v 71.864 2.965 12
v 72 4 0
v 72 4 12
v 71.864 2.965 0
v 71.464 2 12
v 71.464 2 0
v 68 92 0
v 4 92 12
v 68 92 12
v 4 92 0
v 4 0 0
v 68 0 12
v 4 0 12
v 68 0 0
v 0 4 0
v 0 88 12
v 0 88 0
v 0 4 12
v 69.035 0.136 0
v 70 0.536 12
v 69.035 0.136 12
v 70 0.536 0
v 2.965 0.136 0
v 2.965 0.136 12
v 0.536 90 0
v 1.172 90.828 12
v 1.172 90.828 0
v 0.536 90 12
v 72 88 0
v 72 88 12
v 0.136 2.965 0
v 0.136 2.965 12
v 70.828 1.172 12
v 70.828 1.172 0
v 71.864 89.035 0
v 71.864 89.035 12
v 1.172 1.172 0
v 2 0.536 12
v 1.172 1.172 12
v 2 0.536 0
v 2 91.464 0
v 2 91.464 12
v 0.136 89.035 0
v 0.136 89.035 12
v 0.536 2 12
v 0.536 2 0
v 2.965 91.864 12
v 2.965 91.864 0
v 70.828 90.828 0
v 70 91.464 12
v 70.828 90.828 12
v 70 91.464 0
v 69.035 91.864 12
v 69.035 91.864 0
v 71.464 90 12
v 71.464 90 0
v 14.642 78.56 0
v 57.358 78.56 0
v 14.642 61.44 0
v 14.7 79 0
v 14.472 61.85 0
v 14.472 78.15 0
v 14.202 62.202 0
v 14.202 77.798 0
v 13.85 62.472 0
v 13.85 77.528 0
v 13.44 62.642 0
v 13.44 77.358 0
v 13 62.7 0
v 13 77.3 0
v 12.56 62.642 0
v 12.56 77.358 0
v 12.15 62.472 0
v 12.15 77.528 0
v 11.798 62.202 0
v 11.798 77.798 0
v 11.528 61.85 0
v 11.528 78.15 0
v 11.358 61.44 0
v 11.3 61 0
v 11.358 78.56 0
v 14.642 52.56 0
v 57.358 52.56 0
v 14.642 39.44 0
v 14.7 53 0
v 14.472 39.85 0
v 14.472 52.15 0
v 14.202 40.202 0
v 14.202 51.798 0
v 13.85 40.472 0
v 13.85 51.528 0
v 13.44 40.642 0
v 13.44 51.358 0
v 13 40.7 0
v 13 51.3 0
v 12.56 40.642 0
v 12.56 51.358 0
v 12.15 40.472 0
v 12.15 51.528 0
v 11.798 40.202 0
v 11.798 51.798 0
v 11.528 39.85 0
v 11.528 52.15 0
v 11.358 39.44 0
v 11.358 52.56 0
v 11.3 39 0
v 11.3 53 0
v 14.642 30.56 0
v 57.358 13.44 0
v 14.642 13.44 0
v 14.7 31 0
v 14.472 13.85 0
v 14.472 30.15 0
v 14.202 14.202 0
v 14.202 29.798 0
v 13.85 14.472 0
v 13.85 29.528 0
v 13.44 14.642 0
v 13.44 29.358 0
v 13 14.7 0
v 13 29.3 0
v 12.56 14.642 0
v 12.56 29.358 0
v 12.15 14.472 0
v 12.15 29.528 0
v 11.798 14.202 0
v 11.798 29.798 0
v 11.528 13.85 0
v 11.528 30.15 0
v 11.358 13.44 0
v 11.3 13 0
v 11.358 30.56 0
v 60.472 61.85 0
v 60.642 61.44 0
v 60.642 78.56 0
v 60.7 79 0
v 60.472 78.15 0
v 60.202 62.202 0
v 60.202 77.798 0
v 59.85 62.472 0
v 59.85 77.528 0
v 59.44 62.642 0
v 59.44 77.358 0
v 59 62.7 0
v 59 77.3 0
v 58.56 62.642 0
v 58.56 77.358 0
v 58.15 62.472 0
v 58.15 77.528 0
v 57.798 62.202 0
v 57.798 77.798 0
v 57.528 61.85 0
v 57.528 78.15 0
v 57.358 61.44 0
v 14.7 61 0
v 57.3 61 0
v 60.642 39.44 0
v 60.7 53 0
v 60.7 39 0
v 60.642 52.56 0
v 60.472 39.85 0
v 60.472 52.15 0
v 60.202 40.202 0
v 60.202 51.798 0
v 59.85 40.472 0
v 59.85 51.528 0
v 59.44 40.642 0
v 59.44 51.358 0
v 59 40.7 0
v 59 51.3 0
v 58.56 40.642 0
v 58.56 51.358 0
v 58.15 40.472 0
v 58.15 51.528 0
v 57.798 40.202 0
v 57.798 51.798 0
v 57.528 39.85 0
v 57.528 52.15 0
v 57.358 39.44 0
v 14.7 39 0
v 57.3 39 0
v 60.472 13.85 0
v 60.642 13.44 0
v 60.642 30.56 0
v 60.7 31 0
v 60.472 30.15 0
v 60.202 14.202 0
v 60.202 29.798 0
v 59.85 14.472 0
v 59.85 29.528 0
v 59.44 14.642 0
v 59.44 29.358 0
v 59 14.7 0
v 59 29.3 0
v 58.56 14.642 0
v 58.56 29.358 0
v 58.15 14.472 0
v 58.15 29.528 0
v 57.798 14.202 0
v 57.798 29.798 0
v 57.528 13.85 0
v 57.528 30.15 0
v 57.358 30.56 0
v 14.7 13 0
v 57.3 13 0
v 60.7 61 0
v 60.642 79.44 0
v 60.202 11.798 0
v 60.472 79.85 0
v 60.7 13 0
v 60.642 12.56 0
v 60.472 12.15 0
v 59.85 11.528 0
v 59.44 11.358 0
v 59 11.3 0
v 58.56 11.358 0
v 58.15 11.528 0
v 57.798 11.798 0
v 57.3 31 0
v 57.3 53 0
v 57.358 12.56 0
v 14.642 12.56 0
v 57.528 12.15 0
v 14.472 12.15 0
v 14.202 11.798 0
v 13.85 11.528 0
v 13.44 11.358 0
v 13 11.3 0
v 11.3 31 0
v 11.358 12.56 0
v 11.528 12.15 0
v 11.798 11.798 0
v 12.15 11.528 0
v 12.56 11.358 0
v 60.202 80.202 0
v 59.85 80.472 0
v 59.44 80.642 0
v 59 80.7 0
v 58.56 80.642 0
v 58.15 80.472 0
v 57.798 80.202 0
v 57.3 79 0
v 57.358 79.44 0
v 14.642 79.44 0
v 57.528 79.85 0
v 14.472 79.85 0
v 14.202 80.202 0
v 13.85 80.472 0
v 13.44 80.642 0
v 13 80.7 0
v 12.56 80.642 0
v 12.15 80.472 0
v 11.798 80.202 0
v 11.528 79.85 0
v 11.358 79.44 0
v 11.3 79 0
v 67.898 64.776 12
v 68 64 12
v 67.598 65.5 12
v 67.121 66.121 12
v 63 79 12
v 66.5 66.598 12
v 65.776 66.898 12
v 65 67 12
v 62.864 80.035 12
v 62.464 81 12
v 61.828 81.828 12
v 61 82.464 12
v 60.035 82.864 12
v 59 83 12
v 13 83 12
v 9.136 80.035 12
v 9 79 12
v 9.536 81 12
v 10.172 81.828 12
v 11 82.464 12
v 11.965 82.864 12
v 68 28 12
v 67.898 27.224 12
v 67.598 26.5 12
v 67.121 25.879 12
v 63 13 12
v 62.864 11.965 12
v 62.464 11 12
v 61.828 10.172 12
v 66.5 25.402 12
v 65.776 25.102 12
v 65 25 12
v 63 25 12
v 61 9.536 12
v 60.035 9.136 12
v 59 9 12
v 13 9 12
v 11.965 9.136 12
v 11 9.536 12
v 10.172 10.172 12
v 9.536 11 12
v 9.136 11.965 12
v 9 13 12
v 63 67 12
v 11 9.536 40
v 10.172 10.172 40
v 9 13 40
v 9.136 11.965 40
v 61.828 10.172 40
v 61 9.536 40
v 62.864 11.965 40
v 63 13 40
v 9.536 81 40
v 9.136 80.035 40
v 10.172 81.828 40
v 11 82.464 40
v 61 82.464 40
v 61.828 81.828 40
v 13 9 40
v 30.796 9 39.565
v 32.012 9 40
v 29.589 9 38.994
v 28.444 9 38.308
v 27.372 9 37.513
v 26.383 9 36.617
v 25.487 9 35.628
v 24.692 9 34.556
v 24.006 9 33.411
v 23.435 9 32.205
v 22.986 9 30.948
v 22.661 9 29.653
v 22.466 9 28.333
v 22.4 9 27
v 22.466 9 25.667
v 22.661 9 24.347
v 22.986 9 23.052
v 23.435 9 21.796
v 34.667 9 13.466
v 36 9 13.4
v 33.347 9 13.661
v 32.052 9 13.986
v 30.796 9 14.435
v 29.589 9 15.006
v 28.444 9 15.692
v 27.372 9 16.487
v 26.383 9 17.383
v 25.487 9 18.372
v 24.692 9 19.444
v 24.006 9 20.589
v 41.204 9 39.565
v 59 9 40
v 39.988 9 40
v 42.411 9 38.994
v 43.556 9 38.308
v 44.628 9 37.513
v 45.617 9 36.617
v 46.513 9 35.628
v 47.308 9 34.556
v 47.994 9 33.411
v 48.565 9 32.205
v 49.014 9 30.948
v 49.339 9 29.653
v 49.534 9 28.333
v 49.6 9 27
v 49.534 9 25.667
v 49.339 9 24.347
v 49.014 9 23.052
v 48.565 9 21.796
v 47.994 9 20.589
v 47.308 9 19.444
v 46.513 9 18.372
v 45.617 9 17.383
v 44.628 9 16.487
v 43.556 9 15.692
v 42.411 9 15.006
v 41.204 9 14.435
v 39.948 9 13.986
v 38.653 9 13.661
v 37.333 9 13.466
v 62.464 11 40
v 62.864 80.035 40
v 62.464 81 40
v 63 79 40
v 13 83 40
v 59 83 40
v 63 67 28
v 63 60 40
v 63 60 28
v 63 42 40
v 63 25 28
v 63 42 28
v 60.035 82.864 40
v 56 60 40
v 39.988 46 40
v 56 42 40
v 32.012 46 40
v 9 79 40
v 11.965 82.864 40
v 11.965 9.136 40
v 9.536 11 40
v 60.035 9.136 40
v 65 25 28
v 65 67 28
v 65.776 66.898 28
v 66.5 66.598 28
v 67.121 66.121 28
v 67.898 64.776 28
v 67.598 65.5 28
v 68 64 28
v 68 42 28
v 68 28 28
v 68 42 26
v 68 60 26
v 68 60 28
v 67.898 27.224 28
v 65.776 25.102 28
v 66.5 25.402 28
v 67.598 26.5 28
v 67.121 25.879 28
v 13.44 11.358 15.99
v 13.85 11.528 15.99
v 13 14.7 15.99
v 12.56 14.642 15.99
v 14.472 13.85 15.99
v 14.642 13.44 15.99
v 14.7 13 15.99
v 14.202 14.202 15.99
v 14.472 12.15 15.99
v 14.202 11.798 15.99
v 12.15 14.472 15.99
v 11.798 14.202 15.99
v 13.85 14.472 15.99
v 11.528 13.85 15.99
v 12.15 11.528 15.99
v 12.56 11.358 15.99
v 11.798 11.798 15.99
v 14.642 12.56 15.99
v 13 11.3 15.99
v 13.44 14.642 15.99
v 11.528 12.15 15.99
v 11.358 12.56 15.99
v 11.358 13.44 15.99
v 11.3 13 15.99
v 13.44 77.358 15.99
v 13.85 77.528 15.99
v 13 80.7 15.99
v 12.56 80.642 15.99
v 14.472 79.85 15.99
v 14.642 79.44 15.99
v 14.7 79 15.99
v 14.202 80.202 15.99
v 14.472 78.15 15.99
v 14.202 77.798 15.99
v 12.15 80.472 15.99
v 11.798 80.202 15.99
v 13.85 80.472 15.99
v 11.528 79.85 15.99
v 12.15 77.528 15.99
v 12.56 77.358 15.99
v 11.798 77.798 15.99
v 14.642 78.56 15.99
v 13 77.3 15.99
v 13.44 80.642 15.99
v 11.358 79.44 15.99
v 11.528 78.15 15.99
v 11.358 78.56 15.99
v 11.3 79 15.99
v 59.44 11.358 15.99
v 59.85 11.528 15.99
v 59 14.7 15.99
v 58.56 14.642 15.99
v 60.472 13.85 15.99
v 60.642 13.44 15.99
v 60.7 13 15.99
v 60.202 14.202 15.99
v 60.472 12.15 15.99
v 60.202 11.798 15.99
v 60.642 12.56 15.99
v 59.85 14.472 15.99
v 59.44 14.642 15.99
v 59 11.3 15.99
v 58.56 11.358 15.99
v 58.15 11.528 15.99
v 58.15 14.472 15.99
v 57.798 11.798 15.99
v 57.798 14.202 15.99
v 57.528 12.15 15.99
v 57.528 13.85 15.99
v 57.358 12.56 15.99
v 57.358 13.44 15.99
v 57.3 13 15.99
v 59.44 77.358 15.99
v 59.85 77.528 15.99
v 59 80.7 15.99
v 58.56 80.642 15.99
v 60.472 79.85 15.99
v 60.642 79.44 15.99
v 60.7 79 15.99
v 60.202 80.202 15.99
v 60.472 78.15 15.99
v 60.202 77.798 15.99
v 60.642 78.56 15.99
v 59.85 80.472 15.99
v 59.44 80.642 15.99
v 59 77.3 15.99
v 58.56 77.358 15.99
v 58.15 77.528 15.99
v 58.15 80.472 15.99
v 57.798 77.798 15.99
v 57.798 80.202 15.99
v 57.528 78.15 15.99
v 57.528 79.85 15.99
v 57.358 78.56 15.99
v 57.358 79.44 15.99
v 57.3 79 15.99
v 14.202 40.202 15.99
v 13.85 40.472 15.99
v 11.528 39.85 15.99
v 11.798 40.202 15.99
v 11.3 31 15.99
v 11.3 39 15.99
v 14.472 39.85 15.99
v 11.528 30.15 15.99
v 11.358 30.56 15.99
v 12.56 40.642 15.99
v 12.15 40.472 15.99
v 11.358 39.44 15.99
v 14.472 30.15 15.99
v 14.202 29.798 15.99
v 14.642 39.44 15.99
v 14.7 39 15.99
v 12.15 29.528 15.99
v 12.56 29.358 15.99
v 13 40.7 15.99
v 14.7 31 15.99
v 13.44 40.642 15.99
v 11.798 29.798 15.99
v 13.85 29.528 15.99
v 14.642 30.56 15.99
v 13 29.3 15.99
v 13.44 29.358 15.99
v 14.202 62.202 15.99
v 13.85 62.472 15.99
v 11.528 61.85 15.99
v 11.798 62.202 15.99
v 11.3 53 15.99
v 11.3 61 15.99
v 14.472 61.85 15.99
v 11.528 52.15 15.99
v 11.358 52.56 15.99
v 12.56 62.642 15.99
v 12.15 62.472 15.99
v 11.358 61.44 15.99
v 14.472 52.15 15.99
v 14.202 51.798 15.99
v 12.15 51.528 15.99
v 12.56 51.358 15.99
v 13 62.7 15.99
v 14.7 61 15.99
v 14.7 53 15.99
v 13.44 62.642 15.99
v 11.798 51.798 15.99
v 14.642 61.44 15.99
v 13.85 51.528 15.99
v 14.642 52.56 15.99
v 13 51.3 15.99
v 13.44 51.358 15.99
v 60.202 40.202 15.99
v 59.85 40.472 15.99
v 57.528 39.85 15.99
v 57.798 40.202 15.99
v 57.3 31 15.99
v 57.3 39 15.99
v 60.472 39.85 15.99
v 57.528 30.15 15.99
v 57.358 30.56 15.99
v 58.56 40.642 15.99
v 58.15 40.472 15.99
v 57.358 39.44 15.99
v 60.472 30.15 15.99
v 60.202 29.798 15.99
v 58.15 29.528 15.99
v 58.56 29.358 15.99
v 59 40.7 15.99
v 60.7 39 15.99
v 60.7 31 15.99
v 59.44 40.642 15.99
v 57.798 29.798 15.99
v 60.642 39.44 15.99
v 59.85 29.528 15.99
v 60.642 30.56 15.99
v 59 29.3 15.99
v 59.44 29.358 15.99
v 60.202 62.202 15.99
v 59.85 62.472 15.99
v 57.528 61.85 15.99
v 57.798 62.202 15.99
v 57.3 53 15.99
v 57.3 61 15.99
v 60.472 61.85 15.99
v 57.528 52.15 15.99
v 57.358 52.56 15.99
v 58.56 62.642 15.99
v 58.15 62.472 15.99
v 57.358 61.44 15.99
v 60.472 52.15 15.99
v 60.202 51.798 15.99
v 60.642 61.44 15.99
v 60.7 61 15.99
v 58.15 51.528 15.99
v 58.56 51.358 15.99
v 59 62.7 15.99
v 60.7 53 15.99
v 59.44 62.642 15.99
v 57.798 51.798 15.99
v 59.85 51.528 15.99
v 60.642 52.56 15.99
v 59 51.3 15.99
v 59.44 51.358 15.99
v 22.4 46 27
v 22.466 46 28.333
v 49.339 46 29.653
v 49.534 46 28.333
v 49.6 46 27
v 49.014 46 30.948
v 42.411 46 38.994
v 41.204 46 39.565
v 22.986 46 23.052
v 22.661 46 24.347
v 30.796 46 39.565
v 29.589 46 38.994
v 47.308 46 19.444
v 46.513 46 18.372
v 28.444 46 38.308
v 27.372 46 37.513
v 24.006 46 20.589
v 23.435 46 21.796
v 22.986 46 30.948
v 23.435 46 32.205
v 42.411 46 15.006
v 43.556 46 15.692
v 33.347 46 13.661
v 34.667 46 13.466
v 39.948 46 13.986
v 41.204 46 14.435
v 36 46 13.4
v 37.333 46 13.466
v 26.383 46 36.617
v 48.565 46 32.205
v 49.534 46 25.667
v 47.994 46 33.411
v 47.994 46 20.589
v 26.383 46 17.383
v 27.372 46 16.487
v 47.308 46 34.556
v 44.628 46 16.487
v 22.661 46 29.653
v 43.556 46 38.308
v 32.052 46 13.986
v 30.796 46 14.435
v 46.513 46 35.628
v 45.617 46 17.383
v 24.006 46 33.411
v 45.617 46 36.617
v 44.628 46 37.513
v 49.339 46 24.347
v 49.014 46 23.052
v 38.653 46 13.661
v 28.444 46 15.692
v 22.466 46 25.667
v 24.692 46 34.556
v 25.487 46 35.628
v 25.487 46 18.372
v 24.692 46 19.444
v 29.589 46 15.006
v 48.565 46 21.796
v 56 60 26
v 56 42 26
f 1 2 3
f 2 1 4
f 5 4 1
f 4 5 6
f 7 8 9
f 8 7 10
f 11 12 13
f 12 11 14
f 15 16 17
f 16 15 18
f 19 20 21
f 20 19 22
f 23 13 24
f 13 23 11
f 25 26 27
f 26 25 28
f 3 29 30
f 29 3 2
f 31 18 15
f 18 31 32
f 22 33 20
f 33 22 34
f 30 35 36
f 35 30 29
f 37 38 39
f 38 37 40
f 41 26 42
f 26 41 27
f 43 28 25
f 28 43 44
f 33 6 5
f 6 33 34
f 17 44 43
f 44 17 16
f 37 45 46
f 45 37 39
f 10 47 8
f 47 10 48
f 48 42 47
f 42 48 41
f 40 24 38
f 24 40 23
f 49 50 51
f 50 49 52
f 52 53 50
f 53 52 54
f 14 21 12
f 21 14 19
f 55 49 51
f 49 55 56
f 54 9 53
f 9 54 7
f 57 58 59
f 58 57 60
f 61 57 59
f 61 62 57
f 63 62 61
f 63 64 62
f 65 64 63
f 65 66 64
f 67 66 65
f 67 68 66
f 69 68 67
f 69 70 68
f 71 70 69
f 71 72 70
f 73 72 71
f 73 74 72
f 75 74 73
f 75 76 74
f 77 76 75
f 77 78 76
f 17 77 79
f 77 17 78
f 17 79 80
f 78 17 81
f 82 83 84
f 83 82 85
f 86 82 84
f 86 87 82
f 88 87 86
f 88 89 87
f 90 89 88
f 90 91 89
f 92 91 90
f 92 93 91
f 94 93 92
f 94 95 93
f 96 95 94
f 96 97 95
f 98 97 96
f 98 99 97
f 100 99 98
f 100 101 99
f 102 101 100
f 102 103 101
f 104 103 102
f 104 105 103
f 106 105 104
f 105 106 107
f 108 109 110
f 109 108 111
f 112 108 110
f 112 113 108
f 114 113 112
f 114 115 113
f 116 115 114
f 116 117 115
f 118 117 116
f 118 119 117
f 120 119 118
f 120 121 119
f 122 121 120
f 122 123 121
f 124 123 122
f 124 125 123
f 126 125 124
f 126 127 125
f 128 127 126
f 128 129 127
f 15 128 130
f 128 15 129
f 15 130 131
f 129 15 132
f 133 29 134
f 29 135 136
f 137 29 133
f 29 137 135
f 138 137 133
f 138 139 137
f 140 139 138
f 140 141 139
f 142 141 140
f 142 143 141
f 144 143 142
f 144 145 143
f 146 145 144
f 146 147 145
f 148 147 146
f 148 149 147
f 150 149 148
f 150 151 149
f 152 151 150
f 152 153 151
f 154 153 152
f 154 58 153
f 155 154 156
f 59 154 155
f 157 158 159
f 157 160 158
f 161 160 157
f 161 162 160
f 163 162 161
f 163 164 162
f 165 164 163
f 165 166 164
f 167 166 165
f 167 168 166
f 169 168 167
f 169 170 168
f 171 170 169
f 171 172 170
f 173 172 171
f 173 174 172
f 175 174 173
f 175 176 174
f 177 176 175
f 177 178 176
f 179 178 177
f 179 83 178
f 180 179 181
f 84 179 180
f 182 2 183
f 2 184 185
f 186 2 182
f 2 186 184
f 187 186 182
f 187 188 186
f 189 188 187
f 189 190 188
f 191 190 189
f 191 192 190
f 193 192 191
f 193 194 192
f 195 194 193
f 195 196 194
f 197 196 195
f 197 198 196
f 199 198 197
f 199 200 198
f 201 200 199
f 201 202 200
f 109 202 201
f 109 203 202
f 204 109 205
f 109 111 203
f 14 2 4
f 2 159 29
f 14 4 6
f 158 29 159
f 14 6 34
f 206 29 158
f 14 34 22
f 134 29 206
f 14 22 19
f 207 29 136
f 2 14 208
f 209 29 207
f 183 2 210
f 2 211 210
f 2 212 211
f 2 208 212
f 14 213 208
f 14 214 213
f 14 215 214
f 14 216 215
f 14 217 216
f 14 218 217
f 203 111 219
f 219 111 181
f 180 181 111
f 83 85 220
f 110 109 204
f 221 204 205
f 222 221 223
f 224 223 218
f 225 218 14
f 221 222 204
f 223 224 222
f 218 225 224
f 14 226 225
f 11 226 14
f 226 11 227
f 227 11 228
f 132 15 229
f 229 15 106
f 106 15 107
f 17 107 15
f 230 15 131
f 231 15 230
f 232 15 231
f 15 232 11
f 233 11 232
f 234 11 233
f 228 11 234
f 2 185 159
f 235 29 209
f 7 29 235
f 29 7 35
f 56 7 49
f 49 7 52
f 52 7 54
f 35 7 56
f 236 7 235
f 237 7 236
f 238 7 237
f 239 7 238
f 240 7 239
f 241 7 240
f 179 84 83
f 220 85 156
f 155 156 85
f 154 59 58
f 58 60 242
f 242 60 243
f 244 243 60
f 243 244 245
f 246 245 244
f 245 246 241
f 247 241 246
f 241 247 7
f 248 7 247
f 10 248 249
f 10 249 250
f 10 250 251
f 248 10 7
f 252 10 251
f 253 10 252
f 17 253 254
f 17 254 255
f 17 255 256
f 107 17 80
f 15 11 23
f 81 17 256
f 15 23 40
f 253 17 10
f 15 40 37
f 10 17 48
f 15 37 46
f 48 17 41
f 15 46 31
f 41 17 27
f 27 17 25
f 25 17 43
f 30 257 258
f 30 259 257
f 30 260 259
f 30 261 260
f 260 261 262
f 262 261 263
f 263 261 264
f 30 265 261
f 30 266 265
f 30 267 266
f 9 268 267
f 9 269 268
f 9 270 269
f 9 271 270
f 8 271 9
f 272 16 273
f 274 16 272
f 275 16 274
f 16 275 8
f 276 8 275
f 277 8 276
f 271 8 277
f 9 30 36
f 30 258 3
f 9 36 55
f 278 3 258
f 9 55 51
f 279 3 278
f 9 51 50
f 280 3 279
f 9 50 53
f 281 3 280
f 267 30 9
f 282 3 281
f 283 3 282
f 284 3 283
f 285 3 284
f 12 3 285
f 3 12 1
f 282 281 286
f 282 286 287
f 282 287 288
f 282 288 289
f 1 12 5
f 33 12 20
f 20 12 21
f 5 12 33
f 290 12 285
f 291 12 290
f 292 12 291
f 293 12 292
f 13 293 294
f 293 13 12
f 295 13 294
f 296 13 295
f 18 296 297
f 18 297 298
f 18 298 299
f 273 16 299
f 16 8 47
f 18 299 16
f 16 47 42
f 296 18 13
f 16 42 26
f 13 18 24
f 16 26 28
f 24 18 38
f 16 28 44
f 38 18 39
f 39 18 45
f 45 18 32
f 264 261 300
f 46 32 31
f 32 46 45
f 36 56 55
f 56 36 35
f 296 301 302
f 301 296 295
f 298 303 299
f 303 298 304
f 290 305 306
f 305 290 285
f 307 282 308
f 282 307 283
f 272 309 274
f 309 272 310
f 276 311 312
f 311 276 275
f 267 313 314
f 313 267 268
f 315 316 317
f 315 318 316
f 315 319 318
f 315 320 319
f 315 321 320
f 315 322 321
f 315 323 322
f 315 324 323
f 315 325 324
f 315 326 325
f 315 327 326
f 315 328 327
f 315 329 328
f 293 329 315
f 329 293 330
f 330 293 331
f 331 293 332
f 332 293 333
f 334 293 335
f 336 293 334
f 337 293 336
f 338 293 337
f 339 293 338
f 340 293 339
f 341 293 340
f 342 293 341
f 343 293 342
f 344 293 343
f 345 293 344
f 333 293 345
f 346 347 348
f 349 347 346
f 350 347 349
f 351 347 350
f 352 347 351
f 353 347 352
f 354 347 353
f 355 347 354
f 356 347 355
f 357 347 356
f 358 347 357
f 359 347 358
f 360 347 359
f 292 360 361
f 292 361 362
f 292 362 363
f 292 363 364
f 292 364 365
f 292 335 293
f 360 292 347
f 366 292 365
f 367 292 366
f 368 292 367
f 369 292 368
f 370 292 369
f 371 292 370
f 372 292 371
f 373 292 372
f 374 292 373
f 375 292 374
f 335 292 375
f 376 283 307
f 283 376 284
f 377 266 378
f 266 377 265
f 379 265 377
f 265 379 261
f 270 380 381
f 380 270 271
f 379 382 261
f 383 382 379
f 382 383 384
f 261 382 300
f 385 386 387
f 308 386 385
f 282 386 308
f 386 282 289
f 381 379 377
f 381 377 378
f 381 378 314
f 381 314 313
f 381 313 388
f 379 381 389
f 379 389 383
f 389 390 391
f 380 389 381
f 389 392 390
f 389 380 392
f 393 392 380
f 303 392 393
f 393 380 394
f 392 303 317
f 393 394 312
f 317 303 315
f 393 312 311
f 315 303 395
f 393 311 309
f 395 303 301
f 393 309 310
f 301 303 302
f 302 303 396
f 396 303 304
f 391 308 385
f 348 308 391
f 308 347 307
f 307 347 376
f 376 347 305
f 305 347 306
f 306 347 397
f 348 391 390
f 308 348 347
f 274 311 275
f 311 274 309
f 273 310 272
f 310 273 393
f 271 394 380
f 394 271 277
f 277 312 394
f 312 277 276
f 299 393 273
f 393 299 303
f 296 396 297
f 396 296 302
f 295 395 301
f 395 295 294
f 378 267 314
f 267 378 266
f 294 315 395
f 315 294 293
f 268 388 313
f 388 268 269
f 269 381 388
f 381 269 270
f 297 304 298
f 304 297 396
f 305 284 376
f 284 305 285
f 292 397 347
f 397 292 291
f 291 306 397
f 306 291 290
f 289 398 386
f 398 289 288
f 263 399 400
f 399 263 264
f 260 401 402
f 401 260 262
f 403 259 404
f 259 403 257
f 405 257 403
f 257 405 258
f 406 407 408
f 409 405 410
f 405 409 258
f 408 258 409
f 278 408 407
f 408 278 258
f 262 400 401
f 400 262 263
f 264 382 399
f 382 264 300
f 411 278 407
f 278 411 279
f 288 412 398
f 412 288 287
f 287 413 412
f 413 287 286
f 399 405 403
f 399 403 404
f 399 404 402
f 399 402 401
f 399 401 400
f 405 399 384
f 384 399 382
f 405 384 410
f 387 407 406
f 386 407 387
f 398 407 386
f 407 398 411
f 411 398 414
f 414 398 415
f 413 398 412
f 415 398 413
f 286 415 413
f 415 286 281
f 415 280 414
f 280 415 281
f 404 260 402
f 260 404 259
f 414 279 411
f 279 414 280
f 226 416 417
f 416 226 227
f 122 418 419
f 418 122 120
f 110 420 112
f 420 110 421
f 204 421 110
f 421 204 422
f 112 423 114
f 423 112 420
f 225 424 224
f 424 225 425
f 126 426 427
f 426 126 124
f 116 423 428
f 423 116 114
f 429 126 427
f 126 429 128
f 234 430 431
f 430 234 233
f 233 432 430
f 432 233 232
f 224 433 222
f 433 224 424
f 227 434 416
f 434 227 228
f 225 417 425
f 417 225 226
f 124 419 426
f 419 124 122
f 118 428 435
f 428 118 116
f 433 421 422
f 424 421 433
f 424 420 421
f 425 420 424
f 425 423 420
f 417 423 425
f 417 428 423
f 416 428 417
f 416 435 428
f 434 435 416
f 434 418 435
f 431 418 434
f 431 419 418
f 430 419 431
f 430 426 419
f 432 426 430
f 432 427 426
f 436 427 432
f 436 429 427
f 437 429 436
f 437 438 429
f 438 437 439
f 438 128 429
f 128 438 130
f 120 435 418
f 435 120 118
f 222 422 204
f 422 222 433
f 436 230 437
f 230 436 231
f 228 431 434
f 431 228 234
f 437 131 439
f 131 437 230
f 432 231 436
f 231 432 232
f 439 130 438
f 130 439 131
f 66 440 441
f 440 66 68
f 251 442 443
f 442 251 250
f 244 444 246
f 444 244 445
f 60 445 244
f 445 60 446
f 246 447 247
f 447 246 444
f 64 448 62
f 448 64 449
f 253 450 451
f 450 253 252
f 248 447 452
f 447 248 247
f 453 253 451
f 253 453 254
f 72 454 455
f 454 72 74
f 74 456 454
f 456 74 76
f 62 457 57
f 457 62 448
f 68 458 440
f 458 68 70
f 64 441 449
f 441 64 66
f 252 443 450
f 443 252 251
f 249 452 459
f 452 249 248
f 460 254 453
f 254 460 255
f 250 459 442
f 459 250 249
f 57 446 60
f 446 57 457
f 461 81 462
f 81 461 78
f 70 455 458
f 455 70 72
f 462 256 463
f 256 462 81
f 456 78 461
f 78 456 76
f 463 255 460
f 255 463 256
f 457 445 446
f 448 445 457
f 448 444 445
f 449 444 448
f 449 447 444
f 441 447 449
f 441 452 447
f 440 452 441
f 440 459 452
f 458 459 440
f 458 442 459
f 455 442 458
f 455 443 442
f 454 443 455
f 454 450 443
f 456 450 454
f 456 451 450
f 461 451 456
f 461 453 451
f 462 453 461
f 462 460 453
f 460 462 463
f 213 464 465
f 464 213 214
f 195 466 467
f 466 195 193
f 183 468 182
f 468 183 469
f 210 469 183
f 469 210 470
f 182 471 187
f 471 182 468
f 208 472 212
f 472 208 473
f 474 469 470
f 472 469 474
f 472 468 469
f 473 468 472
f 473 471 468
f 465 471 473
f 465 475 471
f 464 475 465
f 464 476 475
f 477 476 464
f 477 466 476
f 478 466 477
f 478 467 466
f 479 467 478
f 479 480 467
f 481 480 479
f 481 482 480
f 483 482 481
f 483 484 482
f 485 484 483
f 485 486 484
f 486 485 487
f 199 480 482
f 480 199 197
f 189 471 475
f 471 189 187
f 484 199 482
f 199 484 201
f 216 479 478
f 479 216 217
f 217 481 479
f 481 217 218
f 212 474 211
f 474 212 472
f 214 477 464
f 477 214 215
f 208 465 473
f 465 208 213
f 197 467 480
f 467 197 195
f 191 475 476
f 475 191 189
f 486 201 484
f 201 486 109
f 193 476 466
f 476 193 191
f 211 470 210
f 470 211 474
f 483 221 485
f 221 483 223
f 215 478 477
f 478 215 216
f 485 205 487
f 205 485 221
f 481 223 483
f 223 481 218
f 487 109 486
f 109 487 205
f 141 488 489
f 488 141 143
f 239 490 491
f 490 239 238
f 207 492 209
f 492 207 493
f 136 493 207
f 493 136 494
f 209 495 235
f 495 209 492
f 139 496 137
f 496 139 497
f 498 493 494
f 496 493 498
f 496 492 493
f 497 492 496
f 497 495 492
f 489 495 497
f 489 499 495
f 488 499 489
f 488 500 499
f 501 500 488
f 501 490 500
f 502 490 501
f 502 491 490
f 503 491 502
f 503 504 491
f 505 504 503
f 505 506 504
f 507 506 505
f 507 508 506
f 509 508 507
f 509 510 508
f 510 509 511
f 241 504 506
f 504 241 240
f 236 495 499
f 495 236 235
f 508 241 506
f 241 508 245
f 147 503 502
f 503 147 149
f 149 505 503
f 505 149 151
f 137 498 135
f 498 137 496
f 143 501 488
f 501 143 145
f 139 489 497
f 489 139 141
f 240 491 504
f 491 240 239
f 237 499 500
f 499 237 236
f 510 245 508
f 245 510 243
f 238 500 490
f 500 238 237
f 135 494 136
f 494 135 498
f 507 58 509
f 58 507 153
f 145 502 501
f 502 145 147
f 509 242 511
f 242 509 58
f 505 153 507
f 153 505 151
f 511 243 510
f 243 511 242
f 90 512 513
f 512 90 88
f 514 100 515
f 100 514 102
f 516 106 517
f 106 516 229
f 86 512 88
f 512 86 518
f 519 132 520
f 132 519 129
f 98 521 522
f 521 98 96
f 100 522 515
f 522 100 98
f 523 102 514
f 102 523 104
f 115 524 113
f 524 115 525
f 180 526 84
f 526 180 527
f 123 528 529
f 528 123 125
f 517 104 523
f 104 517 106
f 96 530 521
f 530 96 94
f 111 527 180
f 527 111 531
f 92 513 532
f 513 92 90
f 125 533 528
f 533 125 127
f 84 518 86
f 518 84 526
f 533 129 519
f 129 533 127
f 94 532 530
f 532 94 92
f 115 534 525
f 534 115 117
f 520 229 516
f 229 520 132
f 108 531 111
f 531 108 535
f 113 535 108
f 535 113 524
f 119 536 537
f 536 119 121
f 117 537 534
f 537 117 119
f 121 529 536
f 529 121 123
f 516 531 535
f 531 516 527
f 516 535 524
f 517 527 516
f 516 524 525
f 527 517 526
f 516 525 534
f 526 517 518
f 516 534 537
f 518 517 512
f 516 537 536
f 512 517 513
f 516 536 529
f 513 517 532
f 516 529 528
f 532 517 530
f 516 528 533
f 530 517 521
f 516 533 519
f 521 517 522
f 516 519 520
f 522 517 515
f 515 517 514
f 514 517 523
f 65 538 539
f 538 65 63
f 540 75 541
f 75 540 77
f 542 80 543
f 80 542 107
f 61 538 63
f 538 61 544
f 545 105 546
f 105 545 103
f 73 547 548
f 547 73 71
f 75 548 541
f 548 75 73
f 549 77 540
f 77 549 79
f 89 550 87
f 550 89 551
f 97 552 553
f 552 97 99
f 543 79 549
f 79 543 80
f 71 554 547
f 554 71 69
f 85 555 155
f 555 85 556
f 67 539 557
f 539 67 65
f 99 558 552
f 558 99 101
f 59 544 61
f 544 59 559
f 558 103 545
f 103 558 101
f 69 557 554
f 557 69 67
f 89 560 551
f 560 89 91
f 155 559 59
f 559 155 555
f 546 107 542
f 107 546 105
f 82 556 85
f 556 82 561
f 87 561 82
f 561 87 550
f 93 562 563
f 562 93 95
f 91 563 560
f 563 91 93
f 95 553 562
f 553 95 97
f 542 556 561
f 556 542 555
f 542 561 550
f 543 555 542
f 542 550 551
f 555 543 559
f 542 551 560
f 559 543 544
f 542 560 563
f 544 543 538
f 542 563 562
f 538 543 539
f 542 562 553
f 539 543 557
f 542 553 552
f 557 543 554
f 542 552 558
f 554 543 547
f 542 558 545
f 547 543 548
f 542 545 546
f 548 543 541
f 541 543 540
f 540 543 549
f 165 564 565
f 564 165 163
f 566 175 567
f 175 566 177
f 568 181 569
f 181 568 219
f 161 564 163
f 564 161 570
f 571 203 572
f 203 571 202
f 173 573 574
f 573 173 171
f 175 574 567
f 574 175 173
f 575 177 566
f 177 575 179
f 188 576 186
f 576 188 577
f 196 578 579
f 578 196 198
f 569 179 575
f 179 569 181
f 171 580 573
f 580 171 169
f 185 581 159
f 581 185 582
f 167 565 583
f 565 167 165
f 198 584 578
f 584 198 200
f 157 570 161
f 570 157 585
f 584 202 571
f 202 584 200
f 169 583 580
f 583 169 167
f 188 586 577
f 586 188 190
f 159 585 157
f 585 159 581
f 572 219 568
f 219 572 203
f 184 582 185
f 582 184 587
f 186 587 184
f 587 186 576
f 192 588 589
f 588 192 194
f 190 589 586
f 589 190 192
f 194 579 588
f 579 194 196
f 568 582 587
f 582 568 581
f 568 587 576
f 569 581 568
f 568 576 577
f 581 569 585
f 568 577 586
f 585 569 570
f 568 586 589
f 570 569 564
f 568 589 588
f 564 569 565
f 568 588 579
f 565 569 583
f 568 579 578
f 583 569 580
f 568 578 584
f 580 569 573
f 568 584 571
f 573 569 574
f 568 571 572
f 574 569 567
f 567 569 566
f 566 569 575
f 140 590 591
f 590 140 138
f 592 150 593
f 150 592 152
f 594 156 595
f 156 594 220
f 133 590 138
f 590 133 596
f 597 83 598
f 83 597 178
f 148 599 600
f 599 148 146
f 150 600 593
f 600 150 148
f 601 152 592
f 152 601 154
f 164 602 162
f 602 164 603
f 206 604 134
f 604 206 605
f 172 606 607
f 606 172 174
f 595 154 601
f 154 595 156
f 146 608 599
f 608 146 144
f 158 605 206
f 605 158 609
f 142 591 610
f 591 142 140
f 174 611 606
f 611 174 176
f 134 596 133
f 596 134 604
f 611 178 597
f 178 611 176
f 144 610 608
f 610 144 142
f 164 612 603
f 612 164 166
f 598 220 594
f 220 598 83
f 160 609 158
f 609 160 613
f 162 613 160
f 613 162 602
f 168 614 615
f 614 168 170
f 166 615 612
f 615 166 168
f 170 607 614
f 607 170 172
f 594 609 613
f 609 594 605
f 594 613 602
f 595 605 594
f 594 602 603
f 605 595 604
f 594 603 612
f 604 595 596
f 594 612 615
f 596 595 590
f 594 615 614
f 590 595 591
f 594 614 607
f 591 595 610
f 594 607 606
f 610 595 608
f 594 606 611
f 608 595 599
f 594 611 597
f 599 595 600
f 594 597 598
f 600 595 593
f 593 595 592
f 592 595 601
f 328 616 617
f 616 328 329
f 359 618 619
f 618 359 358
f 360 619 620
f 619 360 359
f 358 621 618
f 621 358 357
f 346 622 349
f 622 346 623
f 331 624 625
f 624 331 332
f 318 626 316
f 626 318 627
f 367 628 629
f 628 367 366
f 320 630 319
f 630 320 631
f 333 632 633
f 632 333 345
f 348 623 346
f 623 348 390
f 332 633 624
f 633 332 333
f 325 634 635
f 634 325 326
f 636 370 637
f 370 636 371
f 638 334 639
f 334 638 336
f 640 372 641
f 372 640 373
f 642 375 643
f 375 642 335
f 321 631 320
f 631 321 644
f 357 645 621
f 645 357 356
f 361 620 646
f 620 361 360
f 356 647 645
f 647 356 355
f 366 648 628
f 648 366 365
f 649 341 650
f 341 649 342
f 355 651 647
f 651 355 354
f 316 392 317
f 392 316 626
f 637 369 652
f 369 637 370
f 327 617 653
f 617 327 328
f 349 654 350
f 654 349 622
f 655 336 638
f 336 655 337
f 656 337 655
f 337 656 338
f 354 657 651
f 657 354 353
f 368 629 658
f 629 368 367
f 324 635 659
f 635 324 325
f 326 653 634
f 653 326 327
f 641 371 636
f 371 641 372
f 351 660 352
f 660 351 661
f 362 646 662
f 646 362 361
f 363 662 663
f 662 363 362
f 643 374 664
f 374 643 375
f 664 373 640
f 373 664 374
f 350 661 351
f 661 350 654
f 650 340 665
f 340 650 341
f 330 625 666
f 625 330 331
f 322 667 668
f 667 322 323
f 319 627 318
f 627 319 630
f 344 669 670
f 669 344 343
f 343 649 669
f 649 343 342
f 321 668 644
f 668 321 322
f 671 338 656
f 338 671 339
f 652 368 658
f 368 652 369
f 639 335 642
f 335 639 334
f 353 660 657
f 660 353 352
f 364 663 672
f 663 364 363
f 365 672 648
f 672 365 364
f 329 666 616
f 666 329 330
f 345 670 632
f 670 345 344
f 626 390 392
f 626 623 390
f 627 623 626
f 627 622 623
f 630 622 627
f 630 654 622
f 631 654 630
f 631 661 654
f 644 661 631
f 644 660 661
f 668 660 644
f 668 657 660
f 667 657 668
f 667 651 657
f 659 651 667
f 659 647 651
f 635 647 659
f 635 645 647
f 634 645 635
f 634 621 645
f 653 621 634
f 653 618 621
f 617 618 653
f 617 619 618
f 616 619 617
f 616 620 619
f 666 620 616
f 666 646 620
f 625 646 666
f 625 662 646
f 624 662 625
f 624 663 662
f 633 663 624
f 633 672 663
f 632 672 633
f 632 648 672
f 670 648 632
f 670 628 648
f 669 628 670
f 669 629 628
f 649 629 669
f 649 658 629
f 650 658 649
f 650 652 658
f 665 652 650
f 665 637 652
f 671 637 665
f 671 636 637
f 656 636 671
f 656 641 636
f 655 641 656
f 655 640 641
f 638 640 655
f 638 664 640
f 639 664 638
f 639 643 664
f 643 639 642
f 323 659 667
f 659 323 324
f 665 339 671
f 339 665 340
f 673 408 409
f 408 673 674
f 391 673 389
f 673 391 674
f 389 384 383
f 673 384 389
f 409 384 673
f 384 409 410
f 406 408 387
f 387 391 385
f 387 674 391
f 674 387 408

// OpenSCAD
// file: 00_parameters.scad
// TenderCells DoorCell V1 shared parameters
// Units: millimeters

overall_w = 438;
overall_h = 368;
frame_depth = 56;

clear_w = 242;
clear_h = 312;

rail_thick = 32;
jamb_w = 48;
motor_jamb_w = 78;

// Printability targets
target_bed_xy = 220;
comfortable_part_max = 180;

// Modular frame split dimensions
top_seg_len = overall_w / 3;
bottom_seg_len = overall_w / 3;
left_jamb_seg_h = overall_h / 2;
right_lower_h = 118;
right_motor_h = 156;
right_upper_h = overall_h - right_lower_h - right_motor_h;

// Low-cost electronics envelope used by DoorCell V1.4.
// These dimensions are based on common generic modules, not a custom PCB.
esp32_board = [58, 31, 8];
drv8871_board = [31, 26, 7];
current_sensor_board = [26, 22, 7];
lm2596_board = [44, 22, 14];
inline_fuse_body = [45, 15, 14];
cn3065_board = [44, 24, 8];
electronics_clearance = 1.5;
controller_wall = 3;
controller_box_w = 170;
controller_box_h = 115;
controller_box_d = 46;
controller_lid_insert_offset = 11;
controller_m12_gland_d = 12.8;
controller_m10_gland_d = 10.6;
controller_m8_gland_d = 8.4;
controller_button_d = 16.2;

// Brass heat-set/push-in insert features.
insert_post_d = 8.0;
insert_post_h = 8.0;
insert_pilot_d = 4.6;
insert_pilot_depth = 6.5;
hold_down_screw_clearance = 3.4;

// Motor envelope for common 25GA/JGA25-370 gearmotors with optional encoder.
motor_body_d = 25.0;
motor_body_clearance_d = 27.2;
motor_body_len = 65;
motor_encoder_clearance = 16;
motor_mount_plate = [72, 92, 12];
motor_mount_cradle = [54, 74, 28];

// Optional solar add-on.
solar_panel_w = 145;
solar_panel_h = 145;
solar_panel_t = 4.0;
solar_panel_frame_border = 10;
solar_panel_frame_w = solar_panel_w + 2*solar_panel_frame_border;
solar_panel_frame_h = solar_panel_h + 2*solar_panel_frame_border;
solar_panel_back_depth = 14;
solar_panel_lip_overlap = 3;
solar_ball_d = 22;
solar_ball_socket_clearance = 0.45;
solar_mount_m5 = 5.4;

// Tongue-and-groove frame joints
// Fit target: common FDM printers with PETG/ASA.
// Clearance is per side, so sockets add 2x this value.
tongue_len = 18;
tongue_w = 22;
tongue_z = 10;
tongue_clearance_side = 0.25;
tongue_socket_depth_extra = 0.60;

door_w = 270;
door_h = 326;
door_t = 8;

track_gap = 11;
track_depth = 12;

// Rack-and-pinion drive
// Metric module gear math:
// circular_pitch = PI * module
// pitch_diameter = module * tooth_count
// outside_diameter = module * (tooth_count + 2)
// root_diameter = module * (tooth_count - 2.5)
gear_module = 2.0;
pressure_angle = 20;
gear_backlash = 0.20; // mm removed from rack tooth thickness at pitch line

pinion_teeth = 16;
pinion_pitch_d = gear_module * pinion_teeth;
pinion_pitch_radius = pinion_pitch_d / 2;
pinion_outer_d = gear_module * (pinion_teeth + 2);
pinion_outer_radius = pinion_outer_d / 2;
pinion_root_d = gear_module * (pinion_teeth - 2.5);
pinion_root_radius = pinion_root_d / 2;
pinion_thick = 12;
shaft_d = 6.2;

rack_tooth_count = 15;
rack_circular_pitch = 3.141592653589793 * gear_module;
rack_len = rack_circular_pitch * rack_tooth_count;
rack_w = 18;
rack_t = 6;
rack_addendum = gear_module;
rack_dedendum = 1.25 * gear_module;
rack_tooth_h = rack_addendum + rack_dedendum;
rack_pitch_line_z = rack_dedendum;
rack_tooth_pitch_thickness = rack_circular_pitch / 2 - gear_backlash;
rack_tooth_top_w = rack_tooth_pitch_thickness - 2 * rack_addendum * tan(pressure_angle);
rack_tooth_root_w = rack_tooth_pitch_thickness + 2 * rack_dedendum * tan(pressure_angle);

screw_m3 = 3.4;
screw_m4 = 4.5;
insert_m3 = 4.6;

eps = 0.01;

module rounded_box(size=[10,10,10], r=2) {
  hull() {
    translate([r,r,0]) cylinder(h=size[2], r=r, $fn=24);
    translate([size[0]-r,r,0]) cylinder(h=size[2], r=r, $fn=24);
    translate([r,size[1]-r,0]) cylinder(h=size[2], r=r, $fn=24);
    translate([size[0]-r,size[1]-r,0]) cylinder(h=size[2], r=r, $fn=24);
  }
}

module m3_clearance_hole(h=20) {
  cylinder(h=h, d=screw_m3, $fn=24);
}

module m4_clearance_hole(h=20) {
  cylinder(h=h, d=screw_m4, $fn=24);
}

module heat_insert_hole(h=6) {
  cylinder(h=h, d=insert_m3, $fn=24);
}

module heat_insert_post(h=insert_post_h, d=insert_post_d) {
  difference() {
    cylinder(h=h, d=d, $fn=32);
    translate([0,0,h-insert_pilot_depth+eps])
      cylinder(h=insert_pilot_depth+eps, d=insert_pilot_d, $fn=24);
  }
}

module m3_hold_down_slot(length=10, h=4) {
  hull() {
    translate([-length/2,0,0]) cylinder(h=h, d=hold_down_screw_clearance, $fn=20);
    translate([ length/2,0,0]) cylinder(h=h, d=hold_down_screw_clearance, $fn=20);
  }
}

module rail_channel(length=100) {
  cube([length, track_gap, track_depth]);
}

module frame_tongue_x() {
  rounded_box([tongue_len, tongue_w, tongue_z], r=1.5);
}

module frame_socket_x() {
  cube([
    tongue_len + tongue_socket_depth_extra,
    tongue_w + 2*tongue_clearance_side,
    tongue_z + 2*tongue_clearance_side
  ]);
}

module frame_tongue_y() {
  rounded_box([tongue_w, tongue_len, tongue_z], r=1.5);
}

module frame_socket_y() {
  cube([
    tongue_w + 2*tongue_clearance_side,
    tongue_len + tongue_socket_depth_extra,
    tongue_z + 2*tongue_clearance_side
  ]);
}

module rack_teeth(len=rack_len) {
  teeth = floor(len / rack_circular_pitch);
  for (i=[0:teeth-1]) {
    center = i*rack_circular_pitch + rack_circular_pitch/2;
    translate([0, 0, rack_t-0.20])
      linear_extrude(height=rack_w)
        polygon(points=[
          [center - rack_tooth_root_w/2, 0],
          [center + rack_tooth_root_w/2, 0],
          [center + rack_tooth_top_w/2, rack_tooth_h],
          [center - rack_tooth_top_w/2, rack_tooth_h]
        ]);
  }
}

function polar_point(r, a) = [r * cos(a), r * sin(a)];
// main file
include <00_parameters.scad>

difference() {
  union() {
    rounded_box(motor_mount_plate, r=4);
    translate([9, 9, motor_mount_plate[2]])
      rounded_box(motor_mount_cradle, r=4);

    // Rear encoder/wire strain relief pad.
    translate([54, 25, motor_mount_plate[2]])
      rounded_box([14, 42, 16], r=3);
  }

  // 25GA/JGA25-370 body pocket. Common variants are 25 mm diameter;
  // the 27.2 mm cut leaves 1.1 mm radial clearance for print tolerance.
  translate([36, 46, motor_mount_plate[2] + 15])
    rotate([90,0,0])
      cylinder(h=motor_body_len + motor_encoder_clearance, d=motor_body_clearance_d, $fn=64);

  // Shaft and pinion hub opening.
  translate([36, -eps, motor_mount_plate[2] + 15])
    rotate([90,0,0]) cylinder(h=18, d=13, $fn=40);

  // Encoder and motor lead relief.
  translate([56, 42, motor_mount_plate[2] + 14])
    cube([20, 18, 14]);

  // Mount screws for common 25GA motor face
  for (x=[27, 45]) {
    translate([x, 8, motor_mount_plate[2] + 15])
      rotate([90,0,0]) m3_clearance_hole(h=16);
  }

  // Frame mounting holes
  for (x=[13, 59], y=[13, 79]) {
    translate([x, y, -eps]) m3_clearance_hole(h=motor_mount_plate[2] + 4);
  }

  // Vertical adjustment slots allow pinion/rack mesh tuning.
  for (x=[13, 59], y=[35, 57]) {
    translate([x, y, -eps])
      hull() {
        translate([0,-4,0]) m3_clearance_hole(h=motor_mount_plate[2] + 4);
        translate([0, 4,0]) m3_clearance_hole(h=motor_mount_plate[2] + 4);
      }
  }
}
